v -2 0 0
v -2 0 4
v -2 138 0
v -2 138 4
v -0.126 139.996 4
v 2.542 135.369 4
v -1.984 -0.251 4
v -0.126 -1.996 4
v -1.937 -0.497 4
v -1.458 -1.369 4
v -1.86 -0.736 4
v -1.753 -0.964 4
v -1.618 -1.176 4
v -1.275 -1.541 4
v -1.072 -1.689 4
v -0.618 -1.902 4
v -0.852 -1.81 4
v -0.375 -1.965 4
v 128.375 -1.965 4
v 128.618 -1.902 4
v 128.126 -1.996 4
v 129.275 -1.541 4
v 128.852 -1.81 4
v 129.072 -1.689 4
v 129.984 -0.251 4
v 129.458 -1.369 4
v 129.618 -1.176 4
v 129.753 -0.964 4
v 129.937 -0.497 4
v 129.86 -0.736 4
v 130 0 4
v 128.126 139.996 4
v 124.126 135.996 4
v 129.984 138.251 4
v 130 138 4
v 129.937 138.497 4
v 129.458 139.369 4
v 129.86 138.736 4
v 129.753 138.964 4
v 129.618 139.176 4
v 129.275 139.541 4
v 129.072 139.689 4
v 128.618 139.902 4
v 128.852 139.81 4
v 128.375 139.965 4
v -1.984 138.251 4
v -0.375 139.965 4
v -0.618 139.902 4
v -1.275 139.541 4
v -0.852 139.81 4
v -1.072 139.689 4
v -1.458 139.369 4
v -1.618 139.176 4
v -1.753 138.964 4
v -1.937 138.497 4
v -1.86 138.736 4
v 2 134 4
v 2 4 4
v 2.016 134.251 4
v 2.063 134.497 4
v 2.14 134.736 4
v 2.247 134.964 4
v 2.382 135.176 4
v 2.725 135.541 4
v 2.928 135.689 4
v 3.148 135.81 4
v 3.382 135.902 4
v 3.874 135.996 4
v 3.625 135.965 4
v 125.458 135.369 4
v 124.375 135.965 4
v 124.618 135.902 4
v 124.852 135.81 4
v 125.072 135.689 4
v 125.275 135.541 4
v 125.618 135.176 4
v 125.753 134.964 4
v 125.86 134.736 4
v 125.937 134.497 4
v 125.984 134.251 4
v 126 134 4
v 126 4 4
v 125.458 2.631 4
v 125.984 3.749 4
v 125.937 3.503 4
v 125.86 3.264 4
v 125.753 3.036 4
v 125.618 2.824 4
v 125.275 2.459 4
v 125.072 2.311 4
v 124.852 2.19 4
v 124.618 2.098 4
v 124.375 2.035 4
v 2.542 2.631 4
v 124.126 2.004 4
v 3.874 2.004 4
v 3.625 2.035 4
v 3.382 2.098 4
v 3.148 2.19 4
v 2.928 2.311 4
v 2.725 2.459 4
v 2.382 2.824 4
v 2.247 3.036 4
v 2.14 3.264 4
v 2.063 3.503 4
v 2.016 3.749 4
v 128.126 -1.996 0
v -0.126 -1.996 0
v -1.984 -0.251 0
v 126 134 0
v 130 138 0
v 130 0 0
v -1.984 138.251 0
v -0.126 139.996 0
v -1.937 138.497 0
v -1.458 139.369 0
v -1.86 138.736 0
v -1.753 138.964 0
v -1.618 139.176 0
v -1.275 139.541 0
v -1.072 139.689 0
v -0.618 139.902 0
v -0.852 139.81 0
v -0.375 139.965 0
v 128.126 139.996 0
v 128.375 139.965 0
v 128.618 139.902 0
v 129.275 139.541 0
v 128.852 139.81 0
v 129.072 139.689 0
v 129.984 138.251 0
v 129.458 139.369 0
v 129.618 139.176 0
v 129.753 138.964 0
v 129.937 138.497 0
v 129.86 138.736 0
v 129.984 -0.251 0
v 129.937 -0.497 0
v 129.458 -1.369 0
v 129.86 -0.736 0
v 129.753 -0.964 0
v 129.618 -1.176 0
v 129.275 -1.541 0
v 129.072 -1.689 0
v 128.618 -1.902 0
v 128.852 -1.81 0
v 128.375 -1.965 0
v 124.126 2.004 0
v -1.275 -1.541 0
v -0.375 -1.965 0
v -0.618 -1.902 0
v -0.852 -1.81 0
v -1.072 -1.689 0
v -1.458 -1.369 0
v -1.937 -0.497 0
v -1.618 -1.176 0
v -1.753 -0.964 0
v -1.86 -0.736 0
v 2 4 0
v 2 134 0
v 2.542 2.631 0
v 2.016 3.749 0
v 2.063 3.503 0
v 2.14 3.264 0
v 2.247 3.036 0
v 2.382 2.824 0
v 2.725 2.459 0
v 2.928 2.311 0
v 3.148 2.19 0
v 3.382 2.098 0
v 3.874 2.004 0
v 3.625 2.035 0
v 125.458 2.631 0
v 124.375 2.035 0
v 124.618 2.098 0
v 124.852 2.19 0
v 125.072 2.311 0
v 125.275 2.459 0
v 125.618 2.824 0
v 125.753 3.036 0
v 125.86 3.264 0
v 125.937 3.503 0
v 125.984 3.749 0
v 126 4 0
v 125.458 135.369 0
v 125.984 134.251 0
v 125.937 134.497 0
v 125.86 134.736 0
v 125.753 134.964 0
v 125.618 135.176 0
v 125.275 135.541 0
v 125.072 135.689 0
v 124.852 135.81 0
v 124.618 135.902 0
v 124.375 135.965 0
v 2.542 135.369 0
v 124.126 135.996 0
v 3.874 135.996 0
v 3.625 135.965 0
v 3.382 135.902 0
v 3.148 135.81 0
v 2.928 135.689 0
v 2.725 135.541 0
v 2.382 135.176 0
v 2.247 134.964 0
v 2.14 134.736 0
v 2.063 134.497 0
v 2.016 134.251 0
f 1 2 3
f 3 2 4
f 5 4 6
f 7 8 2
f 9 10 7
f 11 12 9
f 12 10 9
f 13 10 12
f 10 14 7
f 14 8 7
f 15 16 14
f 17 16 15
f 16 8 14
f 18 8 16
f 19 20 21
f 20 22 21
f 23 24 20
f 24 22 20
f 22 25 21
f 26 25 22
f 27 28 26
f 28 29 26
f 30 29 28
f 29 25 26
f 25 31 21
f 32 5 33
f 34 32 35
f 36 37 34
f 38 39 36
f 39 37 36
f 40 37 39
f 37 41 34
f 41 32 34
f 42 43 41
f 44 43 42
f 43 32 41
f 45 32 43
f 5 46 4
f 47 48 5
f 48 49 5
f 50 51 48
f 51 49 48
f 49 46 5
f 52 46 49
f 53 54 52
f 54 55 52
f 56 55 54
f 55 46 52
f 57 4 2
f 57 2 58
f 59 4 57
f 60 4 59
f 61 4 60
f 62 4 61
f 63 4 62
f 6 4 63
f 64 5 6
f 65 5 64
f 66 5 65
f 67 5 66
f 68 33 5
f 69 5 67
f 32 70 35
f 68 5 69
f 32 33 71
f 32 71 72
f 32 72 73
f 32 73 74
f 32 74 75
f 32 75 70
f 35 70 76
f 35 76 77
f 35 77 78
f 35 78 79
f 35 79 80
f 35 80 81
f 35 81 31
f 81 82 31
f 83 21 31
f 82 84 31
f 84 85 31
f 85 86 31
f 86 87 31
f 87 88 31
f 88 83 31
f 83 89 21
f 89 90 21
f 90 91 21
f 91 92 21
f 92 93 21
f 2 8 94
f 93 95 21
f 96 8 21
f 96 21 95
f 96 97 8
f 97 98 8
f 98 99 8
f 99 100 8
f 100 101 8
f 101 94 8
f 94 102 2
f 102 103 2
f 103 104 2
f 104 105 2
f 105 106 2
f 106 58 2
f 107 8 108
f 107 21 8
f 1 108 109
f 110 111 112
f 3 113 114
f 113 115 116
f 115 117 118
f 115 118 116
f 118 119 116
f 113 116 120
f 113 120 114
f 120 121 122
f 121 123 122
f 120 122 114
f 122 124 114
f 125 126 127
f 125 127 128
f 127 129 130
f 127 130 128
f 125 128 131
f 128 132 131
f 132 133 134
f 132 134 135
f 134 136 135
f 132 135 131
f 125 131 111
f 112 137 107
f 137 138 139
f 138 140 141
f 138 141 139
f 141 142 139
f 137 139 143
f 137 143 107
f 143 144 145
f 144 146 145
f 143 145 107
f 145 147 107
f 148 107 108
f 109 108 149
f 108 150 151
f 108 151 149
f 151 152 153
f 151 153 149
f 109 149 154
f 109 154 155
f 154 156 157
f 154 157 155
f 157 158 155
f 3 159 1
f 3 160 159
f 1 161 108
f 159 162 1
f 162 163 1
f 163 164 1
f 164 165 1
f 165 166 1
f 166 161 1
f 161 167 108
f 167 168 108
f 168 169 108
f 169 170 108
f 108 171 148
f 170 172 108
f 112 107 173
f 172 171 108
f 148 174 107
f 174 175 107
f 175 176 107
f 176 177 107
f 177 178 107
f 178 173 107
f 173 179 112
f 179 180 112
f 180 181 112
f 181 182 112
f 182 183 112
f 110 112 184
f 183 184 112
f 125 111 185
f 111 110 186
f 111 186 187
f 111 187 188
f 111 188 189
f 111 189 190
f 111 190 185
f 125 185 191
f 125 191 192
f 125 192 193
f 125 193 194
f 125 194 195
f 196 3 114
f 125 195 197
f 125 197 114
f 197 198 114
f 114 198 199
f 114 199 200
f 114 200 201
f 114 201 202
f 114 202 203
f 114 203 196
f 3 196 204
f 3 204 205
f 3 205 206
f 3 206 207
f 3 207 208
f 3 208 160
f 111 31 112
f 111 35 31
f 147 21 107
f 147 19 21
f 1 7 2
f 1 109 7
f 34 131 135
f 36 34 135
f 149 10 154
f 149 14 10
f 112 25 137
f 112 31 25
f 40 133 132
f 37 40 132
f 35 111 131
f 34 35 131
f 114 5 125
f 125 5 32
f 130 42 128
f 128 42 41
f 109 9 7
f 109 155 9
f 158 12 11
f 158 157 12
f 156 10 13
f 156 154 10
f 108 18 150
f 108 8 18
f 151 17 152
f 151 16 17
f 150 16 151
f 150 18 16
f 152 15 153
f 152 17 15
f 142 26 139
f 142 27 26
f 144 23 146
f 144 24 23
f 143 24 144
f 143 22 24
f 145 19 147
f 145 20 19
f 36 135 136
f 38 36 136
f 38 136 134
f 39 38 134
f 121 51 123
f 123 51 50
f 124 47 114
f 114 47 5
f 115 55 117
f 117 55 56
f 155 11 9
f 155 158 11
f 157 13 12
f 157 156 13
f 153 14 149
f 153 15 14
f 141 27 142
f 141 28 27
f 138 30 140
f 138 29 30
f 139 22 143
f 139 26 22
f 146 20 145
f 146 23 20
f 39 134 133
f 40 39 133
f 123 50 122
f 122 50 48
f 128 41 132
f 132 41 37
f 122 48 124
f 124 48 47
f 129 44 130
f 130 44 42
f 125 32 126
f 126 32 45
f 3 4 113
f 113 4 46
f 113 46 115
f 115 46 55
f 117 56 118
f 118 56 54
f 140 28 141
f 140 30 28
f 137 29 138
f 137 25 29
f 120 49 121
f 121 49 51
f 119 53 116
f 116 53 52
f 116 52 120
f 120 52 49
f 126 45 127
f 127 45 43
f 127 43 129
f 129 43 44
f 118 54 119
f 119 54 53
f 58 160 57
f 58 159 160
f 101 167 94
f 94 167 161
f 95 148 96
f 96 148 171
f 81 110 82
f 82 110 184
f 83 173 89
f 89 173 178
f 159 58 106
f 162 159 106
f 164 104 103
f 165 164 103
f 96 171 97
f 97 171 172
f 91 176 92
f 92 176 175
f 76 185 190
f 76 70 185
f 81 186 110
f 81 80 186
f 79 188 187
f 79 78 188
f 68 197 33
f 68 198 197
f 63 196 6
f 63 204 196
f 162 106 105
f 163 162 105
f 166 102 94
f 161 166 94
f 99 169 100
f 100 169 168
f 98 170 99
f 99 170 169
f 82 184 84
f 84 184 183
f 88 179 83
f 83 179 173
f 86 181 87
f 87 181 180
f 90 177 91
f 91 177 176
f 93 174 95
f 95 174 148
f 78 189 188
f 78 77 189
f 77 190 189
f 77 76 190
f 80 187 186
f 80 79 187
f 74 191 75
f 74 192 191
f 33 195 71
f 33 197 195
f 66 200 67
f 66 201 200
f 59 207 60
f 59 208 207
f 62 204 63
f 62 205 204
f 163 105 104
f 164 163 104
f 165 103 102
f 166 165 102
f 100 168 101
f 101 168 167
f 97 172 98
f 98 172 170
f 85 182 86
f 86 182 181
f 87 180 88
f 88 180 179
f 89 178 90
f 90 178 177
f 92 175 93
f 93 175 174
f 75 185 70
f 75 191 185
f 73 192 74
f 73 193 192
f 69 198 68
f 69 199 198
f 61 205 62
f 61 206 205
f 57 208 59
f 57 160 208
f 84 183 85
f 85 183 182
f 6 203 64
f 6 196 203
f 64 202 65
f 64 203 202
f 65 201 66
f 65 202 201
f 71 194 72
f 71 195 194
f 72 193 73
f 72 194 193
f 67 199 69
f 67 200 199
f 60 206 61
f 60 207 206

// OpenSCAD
// Stiffener for Playmobil Camping Iglu tent 5435
// License GNU AFFERO GENERAL PUBLIC LICENSE v3+
// Copyright 2014 Christian Ege <k4230r6@gmail.com>

$fn=50;
difference () {
	minkowski()
	{
		cube([128,138,3]);
		cylinder(r=2,h=1);
	}
	translate ([4,4,-0.1]) {
		minkowski()
		{
			cube([120,130,3.2]);
			cylinder(r=2,h=1);
		}
	}
}
